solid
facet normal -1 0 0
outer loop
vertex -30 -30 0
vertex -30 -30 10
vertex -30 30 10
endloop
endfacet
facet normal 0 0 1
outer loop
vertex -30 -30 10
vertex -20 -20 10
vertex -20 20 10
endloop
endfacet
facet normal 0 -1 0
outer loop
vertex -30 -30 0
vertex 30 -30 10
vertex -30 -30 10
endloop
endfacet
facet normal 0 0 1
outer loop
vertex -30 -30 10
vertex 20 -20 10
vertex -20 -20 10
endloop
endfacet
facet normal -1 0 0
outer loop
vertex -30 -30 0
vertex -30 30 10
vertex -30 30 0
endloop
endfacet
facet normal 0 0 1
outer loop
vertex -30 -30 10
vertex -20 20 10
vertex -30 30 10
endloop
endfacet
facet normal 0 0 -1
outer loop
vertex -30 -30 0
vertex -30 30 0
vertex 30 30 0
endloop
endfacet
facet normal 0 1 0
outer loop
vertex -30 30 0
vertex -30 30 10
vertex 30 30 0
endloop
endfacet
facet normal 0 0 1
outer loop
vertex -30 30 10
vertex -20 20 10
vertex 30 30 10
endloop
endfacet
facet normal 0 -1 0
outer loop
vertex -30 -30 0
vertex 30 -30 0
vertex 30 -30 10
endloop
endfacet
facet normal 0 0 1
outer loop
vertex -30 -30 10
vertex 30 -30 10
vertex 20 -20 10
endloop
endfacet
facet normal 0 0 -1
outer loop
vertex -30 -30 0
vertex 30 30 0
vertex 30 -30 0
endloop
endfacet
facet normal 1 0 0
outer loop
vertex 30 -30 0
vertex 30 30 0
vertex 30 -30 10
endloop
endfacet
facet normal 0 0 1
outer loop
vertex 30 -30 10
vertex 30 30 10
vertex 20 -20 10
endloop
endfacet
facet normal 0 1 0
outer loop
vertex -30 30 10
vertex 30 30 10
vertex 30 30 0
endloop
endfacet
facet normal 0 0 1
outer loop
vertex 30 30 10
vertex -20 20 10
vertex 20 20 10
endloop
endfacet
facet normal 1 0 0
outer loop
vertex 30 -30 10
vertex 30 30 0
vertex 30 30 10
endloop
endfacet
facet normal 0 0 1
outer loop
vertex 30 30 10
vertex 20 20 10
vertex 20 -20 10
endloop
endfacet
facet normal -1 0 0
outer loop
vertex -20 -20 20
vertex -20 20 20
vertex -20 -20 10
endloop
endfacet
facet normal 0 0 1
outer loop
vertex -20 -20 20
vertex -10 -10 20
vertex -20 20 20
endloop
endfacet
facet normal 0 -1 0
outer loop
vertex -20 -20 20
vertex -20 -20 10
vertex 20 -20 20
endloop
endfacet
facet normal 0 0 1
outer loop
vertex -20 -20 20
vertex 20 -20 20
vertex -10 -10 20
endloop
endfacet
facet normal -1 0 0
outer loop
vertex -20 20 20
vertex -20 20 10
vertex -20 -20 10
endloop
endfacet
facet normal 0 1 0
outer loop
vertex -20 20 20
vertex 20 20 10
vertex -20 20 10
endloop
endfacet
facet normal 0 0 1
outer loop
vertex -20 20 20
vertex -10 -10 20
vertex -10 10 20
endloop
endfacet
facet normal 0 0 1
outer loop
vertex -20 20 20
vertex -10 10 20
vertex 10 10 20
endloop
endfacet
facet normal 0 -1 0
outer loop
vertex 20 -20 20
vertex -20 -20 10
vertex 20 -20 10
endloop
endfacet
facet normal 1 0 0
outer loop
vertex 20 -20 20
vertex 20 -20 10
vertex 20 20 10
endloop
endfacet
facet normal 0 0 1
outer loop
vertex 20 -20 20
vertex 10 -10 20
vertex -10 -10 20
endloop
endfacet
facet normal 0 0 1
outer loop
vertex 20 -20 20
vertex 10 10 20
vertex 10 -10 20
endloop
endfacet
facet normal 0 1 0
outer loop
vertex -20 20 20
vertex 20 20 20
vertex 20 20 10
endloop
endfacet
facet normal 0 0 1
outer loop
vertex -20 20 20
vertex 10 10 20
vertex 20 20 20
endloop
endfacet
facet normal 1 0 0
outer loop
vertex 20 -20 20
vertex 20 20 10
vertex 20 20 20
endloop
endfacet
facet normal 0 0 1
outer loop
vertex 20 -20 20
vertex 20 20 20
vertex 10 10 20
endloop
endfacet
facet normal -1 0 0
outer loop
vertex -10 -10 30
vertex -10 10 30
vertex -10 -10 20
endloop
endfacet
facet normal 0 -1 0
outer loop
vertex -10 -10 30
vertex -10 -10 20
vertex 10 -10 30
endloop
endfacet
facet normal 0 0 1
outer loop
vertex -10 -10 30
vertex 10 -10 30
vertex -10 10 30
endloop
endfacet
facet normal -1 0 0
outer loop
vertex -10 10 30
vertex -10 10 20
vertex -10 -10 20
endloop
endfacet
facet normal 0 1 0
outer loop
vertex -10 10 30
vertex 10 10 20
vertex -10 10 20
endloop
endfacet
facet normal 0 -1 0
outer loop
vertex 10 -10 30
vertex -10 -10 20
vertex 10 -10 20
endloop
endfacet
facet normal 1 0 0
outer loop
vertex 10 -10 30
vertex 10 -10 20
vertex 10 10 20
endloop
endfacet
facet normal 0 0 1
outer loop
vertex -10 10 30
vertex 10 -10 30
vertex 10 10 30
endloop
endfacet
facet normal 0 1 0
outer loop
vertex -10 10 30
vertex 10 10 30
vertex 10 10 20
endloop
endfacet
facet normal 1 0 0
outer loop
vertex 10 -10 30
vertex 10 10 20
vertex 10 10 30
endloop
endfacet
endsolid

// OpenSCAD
// 3段の階段状ピラミッド（中心揃え）

module plate(size_xy, h) {
    cube([size_xy, size_xy, h], center=true);
}

bottom_size = 60;
mid_size    = 40;
top_size    = 20;

h = 10; // 各段の高さ（課題指定）

union() {
    // 底板：z=0〜10
    translate([0, 0, h/2])
        plate(bottom_size, h);

    // 中板：z=10〜20
    translate([0, 0, h + h/2])
        plate(mid_size, h);

    // 上板：z=20〜30
    translate([0, 0, 2*h + h/2])
        plate(top_size, h);
}
